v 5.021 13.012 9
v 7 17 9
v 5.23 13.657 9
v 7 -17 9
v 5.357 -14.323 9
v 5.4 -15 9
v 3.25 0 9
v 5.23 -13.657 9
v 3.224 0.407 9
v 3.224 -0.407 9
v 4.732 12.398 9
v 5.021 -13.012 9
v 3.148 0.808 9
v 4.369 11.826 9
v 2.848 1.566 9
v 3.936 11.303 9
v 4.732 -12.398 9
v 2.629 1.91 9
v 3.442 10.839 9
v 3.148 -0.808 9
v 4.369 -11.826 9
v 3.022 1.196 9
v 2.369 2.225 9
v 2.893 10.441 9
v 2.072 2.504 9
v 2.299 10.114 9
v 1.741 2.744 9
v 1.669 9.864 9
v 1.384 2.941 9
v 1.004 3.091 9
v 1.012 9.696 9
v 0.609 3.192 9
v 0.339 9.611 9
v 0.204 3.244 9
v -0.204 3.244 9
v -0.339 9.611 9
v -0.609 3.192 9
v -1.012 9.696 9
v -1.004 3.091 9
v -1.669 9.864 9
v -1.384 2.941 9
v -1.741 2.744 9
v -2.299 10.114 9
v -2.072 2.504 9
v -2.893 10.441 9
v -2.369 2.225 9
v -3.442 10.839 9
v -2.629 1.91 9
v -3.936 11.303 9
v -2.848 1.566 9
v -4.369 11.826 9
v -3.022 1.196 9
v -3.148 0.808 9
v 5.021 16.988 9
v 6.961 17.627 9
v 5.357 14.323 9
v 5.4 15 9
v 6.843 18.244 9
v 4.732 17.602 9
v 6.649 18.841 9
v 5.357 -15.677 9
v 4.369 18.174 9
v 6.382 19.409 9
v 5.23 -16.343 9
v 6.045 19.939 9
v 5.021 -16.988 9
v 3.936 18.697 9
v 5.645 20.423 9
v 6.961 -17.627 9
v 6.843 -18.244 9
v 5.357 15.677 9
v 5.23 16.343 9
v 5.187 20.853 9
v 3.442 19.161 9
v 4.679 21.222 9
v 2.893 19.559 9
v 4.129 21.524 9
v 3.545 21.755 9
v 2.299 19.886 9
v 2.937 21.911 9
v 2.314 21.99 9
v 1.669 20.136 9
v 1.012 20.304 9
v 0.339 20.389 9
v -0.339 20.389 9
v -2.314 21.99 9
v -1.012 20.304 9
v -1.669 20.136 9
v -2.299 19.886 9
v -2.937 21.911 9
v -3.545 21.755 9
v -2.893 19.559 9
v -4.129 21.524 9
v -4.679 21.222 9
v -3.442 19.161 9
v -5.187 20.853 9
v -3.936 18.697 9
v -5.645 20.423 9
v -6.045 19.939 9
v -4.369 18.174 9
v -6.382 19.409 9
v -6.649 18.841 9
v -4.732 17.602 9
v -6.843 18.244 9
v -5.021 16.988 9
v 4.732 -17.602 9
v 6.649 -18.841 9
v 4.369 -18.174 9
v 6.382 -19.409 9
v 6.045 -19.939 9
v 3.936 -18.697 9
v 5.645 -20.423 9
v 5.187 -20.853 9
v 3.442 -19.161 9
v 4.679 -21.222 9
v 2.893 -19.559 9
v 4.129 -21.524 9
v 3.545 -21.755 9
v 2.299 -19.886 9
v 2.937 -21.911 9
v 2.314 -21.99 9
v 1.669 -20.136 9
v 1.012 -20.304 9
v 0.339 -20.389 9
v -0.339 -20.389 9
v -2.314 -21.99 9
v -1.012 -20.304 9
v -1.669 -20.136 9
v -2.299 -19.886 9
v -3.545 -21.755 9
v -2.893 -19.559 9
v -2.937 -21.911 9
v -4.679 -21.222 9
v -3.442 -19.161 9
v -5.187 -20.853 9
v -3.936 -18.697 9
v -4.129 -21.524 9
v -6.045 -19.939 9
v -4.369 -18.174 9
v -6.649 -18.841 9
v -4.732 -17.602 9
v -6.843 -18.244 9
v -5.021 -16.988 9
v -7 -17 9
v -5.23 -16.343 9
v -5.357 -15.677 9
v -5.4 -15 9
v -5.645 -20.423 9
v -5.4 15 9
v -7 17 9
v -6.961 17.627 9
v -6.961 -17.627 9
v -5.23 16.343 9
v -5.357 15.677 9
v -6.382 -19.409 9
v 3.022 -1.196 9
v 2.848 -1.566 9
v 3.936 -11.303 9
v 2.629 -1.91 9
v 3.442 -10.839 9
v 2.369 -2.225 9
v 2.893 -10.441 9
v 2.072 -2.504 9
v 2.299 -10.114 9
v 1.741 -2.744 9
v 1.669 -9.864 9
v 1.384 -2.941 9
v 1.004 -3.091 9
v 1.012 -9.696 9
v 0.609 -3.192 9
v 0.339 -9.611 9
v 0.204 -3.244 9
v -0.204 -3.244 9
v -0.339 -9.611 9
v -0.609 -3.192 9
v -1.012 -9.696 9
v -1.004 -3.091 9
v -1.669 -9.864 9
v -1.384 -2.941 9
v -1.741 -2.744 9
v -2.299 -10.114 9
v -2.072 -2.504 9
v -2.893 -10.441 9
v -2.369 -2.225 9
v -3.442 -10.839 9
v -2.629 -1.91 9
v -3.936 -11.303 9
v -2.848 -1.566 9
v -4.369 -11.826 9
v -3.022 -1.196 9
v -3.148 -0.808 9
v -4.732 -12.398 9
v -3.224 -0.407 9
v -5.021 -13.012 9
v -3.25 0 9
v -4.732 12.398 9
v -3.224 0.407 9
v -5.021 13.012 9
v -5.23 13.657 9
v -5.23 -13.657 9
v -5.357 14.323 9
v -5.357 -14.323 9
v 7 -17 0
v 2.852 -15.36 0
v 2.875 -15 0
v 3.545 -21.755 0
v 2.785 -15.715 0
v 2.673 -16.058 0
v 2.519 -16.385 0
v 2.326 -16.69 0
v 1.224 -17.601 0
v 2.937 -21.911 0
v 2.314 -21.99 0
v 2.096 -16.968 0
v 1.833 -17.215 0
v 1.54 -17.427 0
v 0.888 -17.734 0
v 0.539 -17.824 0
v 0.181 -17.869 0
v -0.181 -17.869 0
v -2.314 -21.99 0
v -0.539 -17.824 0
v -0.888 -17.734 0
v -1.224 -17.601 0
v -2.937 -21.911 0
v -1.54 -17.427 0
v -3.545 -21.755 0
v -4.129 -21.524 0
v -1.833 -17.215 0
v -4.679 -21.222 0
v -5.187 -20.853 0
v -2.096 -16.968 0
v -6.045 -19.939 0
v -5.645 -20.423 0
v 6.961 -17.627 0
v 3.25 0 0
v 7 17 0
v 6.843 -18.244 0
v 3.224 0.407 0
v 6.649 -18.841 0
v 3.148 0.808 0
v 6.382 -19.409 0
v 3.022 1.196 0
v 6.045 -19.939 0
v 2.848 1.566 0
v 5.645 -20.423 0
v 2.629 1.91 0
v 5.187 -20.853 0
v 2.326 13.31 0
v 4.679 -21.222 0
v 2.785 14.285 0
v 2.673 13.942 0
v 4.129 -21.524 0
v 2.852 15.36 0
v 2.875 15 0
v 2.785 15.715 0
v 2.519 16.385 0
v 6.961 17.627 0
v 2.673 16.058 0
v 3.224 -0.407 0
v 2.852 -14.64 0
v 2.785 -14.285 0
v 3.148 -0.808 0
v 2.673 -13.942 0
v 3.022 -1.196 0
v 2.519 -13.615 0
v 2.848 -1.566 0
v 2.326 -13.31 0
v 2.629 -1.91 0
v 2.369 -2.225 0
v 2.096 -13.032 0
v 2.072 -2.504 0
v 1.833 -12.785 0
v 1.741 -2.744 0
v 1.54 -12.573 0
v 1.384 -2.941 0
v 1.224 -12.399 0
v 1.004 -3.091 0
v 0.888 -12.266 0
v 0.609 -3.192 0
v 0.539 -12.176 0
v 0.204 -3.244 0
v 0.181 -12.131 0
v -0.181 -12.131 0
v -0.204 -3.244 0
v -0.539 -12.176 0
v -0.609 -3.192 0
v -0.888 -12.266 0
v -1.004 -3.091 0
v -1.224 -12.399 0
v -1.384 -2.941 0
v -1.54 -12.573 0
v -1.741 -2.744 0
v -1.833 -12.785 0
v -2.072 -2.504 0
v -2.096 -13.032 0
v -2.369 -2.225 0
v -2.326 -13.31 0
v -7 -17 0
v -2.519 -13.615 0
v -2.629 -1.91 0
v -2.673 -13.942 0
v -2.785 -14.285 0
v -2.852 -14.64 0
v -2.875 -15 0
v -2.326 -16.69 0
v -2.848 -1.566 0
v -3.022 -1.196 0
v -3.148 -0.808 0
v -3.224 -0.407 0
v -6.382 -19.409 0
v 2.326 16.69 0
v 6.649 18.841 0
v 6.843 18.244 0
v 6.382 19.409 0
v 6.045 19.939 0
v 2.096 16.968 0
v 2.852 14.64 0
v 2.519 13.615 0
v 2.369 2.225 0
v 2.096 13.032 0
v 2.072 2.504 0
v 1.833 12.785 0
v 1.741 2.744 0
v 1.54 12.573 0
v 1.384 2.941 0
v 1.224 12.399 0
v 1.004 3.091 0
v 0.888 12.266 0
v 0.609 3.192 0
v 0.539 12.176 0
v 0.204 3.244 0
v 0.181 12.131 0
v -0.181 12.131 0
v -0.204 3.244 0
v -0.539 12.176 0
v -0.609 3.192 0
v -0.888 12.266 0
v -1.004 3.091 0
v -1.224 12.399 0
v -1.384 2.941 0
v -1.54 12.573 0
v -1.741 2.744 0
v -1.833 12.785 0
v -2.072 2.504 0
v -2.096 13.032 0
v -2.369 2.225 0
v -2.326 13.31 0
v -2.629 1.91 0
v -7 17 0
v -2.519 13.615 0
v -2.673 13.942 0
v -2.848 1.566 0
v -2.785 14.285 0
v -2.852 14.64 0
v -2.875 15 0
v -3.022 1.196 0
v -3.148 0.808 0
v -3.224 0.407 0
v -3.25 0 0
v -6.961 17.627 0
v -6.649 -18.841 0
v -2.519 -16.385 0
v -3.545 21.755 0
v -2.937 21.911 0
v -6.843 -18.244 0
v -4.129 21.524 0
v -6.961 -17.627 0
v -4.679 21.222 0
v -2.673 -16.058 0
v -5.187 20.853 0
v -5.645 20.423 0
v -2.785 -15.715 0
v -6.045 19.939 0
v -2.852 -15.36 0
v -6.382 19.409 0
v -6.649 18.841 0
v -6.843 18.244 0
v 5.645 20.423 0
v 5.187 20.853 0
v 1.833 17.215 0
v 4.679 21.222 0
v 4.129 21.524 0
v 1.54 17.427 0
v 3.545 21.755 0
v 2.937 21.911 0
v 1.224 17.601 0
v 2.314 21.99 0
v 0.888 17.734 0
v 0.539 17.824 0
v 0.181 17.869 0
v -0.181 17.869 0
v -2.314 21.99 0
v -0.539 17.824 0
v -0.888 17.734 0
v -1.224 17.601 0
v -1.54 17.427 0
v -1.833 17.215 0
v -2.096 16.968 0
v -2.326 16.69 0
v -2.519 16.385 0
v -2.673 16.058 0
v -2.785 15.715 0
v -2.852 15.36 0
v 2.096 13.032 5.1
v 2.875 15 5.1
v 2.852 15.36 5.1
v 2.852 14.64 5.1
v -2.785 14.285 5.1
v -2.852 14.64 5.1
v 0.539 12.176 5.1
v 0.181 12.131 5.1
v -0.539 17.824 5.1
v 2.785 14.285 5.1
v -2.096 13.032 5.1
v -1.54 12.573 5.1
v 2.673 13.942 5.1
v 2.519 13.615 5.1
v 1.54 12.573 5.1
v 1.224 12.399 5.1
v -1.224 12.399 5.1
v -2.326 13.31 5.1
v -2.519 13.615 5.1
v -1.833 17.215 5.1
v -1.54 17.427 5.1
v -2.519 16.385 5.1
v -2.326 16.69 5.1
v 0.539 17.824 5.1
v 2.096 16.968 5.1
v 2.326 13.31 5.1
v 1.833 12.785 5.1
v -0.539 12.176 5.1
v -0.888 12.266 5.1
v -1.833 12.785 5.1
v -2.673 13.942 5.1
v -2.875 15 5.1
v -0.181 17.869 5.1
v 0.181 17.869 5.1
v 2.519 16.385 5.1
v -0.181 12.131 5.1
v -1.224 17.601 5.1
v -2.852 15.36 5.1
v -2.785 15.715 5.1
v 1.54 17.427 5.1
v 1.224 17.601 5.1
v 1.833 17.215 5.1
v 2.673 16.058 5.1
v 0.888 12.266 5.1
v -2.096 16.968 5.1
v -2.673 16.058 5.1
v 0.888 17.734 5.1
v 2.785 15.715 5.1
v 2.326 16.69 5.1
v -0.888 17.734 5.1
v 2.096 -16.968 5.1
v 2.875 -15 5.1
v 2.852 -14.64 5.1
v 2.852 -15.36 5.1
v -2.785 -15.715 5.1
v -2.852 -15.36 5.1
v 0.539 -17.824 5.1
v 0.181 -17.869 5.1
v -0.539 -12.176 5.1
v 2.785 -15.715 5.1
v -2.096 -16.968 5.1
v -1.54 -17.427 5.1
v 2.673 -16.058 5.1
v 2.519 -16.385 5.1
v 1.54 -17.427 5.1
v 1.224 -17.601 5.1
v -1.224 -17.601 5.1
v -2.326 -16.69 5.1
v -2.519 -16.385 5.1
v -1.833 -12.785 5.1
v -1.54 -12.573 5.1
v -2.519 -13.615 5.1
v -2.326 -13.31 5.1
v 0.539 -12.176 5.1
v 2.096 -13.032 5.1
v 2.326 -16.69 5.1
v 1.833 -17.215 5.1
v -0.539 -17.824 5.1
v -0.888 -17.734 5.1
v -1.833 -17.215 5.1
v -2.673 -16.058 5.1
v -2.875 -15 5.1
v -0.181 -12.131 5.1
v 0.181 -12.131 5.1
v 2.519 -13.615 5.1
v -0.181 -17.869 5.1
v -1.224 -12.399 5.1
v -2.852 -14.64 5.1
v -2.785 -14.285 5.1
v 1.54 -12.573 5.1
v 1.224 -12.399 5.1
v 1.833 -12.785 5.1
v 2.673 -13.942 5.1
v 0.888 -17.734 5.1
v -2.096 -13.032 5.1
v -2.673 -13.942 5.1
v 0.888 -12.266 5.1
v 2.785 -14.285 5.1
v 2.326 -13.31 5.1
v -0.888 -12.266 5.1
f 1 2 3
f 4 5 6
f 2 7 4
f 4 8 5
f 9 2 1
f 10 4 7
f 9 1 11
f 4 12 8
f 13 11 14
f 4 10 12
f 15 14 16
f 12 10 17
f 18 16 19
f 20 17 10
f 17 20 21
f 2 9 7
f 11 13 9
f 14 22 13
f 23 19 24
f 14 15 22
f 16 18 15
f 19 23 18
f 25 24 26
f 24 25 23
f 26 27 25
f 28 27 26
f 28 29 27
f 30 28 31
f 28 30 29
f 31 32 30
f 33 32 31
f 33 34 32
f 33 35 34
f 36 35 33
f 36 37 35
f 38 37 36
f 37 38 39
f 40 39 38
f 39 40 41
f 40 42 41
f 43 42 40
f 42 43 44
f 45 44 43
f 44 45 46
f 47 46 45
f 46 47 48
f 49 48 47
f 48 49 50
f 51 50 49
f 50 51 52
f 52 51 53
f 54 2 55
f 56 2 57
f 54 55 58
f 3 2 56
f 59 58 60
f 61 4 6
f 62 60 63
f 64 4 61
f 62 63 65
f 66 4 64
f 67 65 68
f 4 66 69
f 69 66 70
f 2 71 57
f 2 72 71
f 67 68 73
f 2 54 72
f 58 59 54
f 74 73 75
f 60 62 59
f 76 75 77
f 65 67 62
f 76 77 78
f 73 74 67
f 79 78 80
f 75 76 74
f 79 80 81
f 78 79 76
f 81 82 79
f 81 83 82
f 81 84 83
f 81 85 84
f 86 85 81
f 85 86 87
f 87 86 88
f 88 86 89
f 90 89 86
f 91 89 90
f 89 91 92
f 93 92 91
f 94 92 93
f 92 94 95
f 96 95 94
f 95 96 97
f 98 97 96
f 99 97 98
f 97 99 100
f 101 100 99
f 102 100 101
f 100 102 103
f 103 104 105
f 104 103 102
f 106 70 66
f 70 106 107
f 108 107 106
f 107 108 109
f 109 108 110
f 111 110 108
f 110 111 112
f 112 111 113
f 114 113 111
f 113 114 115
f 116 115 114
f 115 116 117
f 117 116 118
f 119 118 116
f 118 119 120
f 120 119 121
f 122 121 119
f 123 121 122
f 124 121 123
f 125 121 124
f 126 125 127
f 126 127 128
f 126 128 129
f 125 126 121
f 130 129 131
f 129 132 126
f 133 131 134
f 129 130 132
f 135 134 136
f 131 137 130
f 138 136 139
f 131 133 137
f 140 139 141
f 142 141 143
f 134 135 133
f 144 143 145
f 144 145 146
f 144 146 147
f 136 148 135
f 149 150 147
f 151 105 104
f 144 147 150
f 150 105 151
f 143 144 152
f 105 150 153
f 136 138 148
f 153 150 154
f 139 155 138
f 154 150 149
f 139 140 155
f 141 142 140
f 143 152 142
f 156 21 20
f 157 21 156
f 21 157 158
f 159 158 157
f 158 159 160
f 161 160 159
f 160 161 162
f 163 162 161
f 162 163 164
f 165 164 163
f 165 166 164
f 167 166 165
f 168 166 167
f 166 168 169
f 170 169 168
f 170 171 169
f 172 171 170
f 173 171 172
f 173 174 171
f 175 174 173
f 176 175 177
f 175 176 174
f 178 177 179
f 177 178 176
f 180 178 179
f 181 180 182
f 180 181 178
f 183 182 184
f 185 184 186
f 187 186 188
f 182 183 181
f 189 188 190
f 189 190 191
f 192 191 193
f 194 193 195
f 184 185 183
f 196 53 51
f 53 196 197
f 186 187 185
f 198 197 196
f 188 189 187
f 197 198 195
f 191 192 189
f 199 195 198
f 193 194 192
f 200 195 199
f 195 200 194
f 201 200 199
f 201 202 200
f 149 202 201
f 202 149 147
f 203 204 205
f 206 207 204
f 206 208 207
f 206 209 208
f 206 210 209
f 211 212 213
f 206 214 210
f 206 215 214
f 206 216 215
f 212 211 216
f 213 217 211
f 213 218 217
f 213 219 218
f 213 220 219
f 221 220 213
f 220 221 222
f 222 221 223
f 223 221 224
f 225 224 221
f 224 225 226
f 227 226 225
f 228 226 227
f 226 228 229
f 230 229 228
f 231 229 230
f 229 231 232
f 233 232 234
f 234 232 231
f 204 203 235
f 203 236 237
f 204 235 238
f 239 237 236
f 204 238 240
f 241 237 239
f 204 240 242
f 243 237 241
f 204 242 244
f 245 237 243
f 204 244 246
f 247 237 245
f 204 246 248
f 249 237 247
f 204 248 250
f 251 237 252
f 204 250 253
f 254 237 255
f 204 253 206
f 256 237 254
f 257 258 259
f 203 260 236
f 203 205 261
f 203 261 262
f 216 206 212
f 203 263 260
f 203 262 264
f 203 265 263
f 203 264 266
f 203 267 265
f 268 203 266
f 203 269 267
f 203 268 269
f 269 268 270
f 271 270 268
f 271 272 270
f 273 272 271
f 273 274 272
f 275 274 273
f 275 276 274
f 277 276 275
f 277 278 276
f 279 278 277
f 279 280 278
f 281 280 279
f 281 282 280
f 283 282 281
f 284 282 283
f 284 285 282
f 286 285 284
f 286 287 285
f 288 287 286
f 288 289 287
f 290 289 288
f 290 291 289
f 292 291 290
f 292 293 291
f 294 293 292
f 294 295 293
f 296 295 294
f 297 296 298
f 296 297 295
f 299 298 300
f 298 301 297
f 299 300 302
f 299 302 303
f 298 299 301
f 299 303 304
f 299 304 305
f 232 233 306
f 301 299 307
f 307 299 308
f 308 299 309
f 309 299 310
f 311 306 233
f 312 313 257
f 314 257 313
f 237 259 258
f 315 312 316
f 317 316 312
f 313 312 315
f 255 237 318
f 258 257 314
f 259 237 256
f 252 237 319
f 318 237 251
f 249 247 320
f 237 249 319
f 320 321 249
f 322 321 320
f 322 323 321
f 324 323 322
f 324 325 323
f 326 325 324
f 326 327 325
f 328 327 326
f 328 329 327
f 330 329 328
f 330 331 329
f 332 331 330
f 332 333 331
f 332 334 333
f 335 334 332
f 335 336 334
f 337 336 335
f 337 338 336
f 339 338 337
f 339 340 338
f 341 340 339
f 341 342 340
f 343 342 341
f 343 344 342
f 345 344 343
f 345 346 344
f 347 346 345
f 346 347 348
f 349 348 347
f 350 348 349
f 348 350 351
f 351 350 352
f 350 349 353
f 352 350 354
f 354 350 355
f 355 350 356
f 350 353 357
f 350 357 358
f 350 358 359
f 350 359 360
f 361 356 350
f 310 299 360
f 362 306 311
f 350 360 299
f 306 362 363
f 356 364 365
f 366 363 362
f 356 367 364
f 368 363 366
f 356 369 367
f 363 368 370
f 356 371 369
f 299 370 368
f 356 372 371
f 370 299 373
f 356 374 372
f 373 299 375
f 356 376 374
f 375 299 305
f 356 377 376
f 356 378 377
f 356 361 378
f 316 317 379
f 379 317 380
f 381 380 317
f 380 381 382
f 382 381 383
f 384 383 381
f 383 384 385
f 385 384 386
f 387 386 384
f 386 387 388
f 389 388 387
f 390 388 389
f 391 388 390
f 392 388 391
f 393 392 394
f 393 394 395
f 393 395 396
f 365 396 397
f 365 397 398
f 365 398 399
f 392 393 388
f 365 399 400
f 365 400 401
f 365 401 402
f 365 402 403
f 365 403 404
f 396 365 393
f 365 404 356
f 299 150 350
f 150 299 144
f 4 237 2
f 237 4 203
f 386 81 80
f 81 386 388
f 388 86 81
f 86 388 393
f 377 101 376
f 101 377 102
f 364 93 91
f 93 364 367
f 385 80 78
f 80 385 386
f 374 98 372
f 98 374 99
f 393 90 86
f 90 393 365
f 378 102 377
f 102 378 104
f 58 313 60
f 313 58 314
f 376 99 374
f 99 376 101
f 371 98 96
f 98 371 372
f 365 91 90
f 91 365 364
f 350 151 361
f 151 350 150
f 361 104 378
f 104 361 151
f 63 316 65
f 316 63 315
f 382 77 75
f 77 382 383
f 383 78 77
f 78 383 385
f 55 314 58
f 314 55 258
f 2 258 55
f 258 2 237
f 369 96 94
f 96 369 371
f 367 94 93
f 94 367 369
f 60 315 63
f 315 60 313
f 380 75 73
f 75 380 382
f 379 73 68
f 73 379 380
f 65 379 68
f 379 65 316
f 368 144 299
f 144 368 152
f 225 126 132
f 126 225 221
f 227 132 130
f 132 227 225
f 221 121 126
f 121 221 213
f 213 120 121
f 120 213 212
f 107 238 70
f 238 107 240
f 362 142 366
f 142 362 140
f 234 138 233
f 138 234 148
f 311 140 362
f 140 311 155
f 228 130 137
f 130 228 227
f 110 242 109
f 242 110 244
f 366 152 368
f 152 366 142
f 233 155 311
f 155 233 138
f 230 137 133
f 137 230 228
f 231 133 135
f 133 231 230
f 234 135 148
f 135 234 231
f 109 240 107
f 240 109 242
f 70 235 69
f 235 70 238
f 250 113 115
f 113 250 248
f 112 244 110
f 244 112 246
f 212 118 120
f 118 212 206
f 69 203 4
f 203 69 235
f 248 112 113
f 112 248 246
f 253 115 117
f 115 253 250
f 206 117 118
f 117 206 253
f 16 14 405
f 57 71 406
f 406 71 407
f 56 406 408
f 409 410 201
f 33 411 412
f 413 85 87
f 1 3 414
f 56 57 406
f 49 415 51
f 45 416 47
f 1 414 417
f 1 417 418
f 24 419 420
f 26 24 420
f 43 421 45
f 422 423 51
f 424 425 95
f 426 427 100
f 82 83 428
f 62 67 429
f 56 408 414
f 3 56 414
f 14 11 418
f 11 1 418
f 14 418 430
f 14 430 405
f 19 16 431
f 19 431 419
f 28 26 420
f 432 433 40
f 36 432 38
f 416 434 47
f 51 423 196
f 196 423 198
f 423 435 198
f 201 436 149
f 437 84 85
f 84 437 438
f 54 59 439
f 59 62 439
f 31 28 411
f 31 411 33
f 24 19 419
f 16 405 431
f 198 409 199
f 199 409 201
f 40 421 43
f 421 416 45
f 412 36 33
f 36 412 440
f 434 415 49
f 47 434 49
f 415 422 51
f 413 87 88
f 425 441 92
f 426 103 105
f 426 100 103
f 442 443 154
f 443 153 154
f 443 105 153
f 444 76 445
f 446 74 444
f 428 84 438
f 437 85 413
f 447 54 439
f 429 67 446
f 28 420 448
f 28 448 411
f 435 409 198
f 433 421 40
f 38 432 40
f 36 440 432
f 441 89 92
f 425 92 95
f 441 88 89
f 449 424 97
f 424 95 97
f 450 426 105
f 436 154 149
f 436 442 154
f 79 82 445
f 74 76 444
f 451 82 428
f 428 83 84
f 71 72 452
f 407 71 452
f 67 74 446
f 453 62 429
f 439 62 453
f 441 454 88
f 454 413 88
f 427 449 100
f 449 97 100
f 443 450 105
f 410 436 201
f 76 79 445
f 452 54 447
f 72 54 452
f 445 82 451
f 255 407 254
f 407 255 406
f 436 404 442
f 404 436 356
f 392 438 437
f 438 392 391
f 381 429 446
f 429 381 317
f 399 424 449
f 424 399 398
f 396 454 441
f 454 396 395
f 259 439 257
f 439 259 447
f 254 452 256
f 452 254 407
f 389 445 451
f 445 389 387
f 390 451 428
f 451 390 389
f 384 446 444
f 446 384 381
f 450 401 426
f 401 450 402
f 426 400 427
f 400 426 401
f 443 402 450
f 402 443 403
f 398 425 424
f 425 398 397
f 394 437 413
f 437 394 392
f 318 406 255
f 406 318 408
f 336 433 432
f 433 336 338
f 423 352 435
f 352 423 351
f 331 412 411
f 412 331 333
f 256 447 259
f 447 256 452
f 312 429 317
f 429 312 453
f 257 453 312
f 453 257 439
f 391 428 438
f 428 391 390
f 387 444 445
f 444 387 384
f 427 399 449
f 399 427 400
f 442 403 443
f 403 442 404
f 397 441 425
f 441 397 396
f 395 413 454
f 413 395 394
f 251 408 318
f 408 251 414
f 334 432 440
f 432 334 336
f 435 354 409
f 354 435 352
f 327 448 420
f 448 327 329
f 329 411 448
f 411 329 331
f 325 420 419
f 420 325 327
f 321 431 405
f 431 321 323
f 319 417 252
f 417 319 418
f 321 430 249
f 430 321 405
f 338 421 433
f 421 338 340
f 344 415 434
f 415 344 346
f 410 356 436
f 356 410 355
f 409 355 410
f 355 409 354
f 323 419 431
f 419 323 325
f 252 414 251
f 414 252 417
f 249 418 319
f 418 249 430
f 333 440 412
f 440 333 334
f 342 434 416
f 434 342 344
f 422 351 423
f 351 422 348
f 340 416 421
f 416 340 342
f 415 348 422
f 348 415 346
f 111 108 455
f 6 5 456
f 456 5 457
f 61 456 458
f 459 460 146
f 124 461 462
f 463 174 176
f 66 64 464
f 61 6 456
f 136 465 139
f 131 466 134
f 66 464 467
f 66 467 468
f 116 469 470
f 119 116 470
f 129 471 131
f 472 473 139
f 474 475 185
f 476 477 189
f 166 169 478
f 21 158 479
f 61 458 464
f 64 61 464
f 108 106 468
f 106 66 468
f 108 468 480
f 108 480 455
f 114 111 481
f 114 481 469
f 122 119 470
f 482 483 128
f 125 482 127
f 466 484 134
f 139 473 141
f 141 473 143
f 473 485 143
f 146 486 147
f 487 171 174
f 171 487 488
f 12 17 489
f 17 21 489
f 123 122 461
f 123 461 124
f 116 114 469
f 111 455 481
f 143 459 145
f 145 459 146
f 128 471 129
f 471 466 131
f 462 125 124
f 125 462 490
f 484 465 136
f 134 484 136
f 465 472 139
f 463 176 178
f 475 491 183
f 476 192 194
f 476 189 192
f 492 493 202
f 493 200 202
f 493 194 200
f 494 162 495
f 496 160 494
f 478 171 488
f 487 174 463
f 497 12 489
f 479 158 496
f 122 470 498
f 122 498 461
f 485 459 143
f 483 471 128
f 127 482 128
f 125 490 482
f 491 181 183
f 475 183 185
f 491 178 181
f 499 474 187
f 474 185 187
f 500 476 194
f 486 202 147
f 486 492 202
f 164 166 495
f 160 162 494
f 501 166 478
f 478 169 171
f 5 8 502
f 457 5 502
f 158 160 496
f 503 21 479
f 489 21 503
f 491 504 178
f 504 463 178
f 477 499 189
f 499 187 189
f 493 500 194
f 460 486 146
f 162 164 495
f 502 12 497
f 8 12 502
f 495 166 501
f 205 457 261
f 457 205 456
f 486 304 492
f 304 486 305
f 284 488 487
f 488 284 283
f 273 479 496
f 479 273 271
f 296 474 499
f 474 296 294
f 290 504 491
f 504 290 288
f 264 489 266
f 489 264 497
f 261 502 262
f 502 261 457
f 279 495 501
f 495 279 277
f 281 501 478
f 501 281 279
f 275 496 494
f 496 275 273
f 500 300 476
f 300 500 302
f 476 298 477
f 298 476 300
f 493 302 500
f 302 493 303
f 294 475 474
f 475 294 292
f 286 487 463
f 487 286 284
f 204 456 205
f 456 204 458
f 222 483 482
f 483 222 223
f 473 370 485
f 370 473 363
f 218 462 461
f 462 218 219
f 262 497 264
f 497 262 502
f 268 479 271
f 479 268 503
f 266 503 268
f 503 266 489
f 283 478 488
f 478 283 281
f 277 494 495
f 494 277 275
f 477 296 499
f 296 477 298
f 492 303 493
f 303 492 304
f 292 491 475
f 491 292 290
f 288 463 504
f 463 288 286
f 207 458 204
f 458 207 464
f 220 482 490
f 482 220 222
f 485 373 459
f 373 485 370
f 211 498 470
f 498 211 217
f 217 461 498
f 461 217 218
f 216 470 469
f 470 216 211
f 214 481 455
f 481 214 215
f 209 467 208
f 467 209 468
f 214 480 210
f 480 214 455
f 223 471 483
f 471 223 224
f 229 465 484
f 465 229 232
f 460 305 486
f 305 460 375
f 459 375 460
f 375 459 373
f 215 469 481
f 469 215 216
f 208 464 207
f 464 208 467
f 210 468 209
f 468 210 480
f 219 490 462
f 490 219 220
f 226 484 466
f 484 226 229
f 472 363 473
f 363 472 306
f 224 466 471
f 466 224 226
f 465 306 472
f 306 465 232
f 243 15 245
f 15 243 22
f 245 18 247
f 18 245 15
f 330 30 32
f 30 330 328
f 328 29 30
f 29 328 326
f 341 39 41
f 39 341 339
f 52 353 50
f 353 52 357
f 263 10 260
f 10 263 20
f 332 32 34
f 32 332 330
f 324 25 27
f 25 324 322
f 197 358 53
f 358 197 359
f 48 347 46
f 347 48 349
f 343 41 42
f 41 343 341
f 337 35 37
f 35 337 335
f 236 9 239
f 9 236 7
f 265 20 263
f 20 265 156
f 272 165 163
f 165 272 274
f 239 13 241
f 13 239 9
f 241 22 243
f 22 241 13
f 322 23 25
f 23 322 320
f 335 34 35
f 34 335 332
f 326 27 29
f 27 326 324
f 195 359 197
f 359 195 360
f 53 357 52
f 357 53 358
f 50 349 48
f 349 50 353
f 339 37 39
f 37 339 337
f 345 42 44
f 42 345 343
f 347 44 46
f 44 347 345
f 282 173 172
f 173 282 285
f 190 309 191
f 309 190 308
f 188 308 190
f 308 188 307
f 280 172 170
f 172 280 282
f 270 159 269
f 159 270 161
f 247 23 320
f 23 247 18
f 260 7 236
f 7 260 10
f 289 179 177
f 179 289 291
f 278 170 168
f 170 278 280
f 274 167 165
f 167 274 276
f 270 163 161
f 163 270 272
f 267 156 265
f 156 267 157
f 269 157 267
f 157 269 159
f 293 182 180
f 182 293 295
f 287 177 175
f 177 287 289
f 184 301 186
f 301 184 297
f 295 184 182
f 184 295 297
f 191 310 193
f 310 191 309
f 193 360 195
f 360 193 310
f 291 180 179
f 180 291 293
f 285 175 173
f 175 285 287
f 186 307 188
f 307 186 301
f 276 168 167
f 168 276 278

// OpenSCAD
$fn = 50;


difference() {
	union() {
		cylinder(h = 9, r = 7.0000000000);
		translate(v = [0.0000000000, 7.5000000000, 0]) {
			hull() {
				translate(v = [-2.0000000000, 9.5000000000, 0]) {
					cylinder(h = 9, r = 5);
				}
				translate(v = [2.0000000000, 9.5000000000, 0]) {
					cylinder(h = 9, r = 5);
				}
				translate(v = [-2.0000000000, -9.5000000000, 0]) {
					cylinder(h = 9, r = 5);
				}
				translate(v = [2.0000000000, -9.5000000000, 0]) {
					cylinder(h = 9, r = 5);
				}
			}
		}
		translate(v = [0.0000000000, 7.5000000000, 0]) {
			hull() {
				translate(v = [-2.0000000000, 9.5000000000, 0]) {
					cylinder(h = 9, r = 5);
				}
				translate(v = [2.0000000000, 9.5000000000, 0]) {
					cylinder(h = 9, r = 5);
				}
				translate(v = [-2.0000000000, -9.5000000000, 0]) {
					cylinder(h = 9, r = 5);
				}
				translate(v = [2.0000000000, -9.5000000000, 0]) {
					cylinder(h = 9, r = 5);
				}
			}
		}
		translate(v = [0.0000000000, -7.5000000000, 0]) {
			hull() {
				translate(v = [-2.0000000000, 9.5000000000, 0]) {
					cylinder(h = 9, r = 5);
				}
				translate(v = [2.0000000000, 9.5000000000, 0]) {
					cylinder(h = 9, r = 5);
				}
				translate(v = [-2.0000000000, -9.5000000000, 0]) {
					cylinder(h = 9, r = 5);
				}
				translate(v = [2.0000000000, -9.5000000000, 0]) {
					cylinder(h = 9, r = 5);
				}
			}
		}
		translate(v = [0.0000000000, -7.5000000000, 0]) {
			hull() {
				translate(v = [-2.0000000000, 9.5000000000, 0]) {
					cylinder(h = 9, r = 5);
				}
				translate(v = [2.0000000000, 9.5000000000, 0]) {
					cylinder(h = 9, r = 5);
				}
				translate(v = [-2.0000000000, -9.5000000000, 0]) {
					cylinder(h = 9, r = 5);
				}
				translate(v = [2.0000000000, -9.5000000000, 0]) {
					cylinder(h = 9, r = 5);
				}
			}
		}
	}
	union() {
		translate(v = [0.0000000000, 15.0000000000, 9]) {
			rotate(a = [0, 0, 0]) {
				difference() {
					union() {
						#translate(v = [0, 0, -9.0000000000]) {
							cylinder(h = 9, r = 2.6000000000);
						}
						#translate(v = [0, 0, -3.9000000000]) {
							cylinder(h = 3.9000000000, r1 = 2.8750000000, r2 = 5.4000000000);
						}
						#translate(v = [0, 0, -9.0000000000]) {
							cylinder(h = 9, r = 2.8750000000);
						}
						#translate(v = [0, 0, -9.0000000000]) {
							cylinder(h = 9, r = 2.6000000000);
						}
					}
					union();
				}
			}
		}
		translate(v = [0.0000000000, 15.0000000000, 9]) {
			rotate(a = [0, 0, 0]) {
				difference() {
					union() {
						#translate(v = [0, 0, -9.0000000000]) {
							cylinder(h = 9, r = 2.6000000000);
						}
						#translate(v = [0, 0, -3.9000000000]) {
							cylinder(h = 3.9000000000, r1 = 2.8750000000, r2 = 5.4000000000);
						}
						#translate(v = [0, 0, -9.0000000000]) {
							cylinder(h = 9, r = 2.8750000000);
						}
						#translate(v = [0, 0, -9.0000000000]) {
							cylinder(h = 9, r = 2.6000000000);
						}
					}
					union();
				}
			}
		}
		translate(v = [0.0000000000, -15.0000000000, 9]) {
			rotate(a = [0, 0, 0]) {
				difference() {
					union() {
						#translate(v = [0, 0, -9.0000000000]) {
							cylinder(h = 9, r = 2.6000000000);
						}
						#translate(v = [0, 0, -3.9000000000]) {
							cylinder(h = 3.9000000000, r1 = 2.8750000000, r2 = 5.4000000000);
						}
						#translate(v = [0, 0, -9.0000000000]) {
							cylinder(h = 9, r = 2.8750000000);
						}
						#translate(v = [0, 0, -9.0000000000]) {
							cylinder(h = 9, r = 2.6000000000);
						}
					}
					union();
				}
			}
		}
		translate(v = [0.0000000000, -15.0000000000, 9]) {
			rotate(a = [0, 0, 0]) {
				difference() {
					union() {
						#translate(v = [0, 0, -9.0000000000]) {
							cylinder(h = 9, r = 2.6000000000);
						}
						#translate(v = [0, 0, -3.9000000000]) {
							cylinder(h = 3.9000000000, r1 = 2.8750000000, r2 = 5.4000000000);
						}
						#translate(v = [0, 0, -9.0000000000]) {
							cylinder(h = 9, r = 2.8750000000);
						}
						#translate(v = [0, 0, -9.0000000000]) {
							cylinder(h = 9, r = 2.6000000000);
						}
					}
					union();
				}
			}
		}
		translate(v = [0, 0, -100]) {
			cylinder(h = 200, r = 3.2500000000);
		}
		translate(v = [0, 0, -100]) {
			cylinder(h = 200, r = 1.8000000000);
		}
	}
}
